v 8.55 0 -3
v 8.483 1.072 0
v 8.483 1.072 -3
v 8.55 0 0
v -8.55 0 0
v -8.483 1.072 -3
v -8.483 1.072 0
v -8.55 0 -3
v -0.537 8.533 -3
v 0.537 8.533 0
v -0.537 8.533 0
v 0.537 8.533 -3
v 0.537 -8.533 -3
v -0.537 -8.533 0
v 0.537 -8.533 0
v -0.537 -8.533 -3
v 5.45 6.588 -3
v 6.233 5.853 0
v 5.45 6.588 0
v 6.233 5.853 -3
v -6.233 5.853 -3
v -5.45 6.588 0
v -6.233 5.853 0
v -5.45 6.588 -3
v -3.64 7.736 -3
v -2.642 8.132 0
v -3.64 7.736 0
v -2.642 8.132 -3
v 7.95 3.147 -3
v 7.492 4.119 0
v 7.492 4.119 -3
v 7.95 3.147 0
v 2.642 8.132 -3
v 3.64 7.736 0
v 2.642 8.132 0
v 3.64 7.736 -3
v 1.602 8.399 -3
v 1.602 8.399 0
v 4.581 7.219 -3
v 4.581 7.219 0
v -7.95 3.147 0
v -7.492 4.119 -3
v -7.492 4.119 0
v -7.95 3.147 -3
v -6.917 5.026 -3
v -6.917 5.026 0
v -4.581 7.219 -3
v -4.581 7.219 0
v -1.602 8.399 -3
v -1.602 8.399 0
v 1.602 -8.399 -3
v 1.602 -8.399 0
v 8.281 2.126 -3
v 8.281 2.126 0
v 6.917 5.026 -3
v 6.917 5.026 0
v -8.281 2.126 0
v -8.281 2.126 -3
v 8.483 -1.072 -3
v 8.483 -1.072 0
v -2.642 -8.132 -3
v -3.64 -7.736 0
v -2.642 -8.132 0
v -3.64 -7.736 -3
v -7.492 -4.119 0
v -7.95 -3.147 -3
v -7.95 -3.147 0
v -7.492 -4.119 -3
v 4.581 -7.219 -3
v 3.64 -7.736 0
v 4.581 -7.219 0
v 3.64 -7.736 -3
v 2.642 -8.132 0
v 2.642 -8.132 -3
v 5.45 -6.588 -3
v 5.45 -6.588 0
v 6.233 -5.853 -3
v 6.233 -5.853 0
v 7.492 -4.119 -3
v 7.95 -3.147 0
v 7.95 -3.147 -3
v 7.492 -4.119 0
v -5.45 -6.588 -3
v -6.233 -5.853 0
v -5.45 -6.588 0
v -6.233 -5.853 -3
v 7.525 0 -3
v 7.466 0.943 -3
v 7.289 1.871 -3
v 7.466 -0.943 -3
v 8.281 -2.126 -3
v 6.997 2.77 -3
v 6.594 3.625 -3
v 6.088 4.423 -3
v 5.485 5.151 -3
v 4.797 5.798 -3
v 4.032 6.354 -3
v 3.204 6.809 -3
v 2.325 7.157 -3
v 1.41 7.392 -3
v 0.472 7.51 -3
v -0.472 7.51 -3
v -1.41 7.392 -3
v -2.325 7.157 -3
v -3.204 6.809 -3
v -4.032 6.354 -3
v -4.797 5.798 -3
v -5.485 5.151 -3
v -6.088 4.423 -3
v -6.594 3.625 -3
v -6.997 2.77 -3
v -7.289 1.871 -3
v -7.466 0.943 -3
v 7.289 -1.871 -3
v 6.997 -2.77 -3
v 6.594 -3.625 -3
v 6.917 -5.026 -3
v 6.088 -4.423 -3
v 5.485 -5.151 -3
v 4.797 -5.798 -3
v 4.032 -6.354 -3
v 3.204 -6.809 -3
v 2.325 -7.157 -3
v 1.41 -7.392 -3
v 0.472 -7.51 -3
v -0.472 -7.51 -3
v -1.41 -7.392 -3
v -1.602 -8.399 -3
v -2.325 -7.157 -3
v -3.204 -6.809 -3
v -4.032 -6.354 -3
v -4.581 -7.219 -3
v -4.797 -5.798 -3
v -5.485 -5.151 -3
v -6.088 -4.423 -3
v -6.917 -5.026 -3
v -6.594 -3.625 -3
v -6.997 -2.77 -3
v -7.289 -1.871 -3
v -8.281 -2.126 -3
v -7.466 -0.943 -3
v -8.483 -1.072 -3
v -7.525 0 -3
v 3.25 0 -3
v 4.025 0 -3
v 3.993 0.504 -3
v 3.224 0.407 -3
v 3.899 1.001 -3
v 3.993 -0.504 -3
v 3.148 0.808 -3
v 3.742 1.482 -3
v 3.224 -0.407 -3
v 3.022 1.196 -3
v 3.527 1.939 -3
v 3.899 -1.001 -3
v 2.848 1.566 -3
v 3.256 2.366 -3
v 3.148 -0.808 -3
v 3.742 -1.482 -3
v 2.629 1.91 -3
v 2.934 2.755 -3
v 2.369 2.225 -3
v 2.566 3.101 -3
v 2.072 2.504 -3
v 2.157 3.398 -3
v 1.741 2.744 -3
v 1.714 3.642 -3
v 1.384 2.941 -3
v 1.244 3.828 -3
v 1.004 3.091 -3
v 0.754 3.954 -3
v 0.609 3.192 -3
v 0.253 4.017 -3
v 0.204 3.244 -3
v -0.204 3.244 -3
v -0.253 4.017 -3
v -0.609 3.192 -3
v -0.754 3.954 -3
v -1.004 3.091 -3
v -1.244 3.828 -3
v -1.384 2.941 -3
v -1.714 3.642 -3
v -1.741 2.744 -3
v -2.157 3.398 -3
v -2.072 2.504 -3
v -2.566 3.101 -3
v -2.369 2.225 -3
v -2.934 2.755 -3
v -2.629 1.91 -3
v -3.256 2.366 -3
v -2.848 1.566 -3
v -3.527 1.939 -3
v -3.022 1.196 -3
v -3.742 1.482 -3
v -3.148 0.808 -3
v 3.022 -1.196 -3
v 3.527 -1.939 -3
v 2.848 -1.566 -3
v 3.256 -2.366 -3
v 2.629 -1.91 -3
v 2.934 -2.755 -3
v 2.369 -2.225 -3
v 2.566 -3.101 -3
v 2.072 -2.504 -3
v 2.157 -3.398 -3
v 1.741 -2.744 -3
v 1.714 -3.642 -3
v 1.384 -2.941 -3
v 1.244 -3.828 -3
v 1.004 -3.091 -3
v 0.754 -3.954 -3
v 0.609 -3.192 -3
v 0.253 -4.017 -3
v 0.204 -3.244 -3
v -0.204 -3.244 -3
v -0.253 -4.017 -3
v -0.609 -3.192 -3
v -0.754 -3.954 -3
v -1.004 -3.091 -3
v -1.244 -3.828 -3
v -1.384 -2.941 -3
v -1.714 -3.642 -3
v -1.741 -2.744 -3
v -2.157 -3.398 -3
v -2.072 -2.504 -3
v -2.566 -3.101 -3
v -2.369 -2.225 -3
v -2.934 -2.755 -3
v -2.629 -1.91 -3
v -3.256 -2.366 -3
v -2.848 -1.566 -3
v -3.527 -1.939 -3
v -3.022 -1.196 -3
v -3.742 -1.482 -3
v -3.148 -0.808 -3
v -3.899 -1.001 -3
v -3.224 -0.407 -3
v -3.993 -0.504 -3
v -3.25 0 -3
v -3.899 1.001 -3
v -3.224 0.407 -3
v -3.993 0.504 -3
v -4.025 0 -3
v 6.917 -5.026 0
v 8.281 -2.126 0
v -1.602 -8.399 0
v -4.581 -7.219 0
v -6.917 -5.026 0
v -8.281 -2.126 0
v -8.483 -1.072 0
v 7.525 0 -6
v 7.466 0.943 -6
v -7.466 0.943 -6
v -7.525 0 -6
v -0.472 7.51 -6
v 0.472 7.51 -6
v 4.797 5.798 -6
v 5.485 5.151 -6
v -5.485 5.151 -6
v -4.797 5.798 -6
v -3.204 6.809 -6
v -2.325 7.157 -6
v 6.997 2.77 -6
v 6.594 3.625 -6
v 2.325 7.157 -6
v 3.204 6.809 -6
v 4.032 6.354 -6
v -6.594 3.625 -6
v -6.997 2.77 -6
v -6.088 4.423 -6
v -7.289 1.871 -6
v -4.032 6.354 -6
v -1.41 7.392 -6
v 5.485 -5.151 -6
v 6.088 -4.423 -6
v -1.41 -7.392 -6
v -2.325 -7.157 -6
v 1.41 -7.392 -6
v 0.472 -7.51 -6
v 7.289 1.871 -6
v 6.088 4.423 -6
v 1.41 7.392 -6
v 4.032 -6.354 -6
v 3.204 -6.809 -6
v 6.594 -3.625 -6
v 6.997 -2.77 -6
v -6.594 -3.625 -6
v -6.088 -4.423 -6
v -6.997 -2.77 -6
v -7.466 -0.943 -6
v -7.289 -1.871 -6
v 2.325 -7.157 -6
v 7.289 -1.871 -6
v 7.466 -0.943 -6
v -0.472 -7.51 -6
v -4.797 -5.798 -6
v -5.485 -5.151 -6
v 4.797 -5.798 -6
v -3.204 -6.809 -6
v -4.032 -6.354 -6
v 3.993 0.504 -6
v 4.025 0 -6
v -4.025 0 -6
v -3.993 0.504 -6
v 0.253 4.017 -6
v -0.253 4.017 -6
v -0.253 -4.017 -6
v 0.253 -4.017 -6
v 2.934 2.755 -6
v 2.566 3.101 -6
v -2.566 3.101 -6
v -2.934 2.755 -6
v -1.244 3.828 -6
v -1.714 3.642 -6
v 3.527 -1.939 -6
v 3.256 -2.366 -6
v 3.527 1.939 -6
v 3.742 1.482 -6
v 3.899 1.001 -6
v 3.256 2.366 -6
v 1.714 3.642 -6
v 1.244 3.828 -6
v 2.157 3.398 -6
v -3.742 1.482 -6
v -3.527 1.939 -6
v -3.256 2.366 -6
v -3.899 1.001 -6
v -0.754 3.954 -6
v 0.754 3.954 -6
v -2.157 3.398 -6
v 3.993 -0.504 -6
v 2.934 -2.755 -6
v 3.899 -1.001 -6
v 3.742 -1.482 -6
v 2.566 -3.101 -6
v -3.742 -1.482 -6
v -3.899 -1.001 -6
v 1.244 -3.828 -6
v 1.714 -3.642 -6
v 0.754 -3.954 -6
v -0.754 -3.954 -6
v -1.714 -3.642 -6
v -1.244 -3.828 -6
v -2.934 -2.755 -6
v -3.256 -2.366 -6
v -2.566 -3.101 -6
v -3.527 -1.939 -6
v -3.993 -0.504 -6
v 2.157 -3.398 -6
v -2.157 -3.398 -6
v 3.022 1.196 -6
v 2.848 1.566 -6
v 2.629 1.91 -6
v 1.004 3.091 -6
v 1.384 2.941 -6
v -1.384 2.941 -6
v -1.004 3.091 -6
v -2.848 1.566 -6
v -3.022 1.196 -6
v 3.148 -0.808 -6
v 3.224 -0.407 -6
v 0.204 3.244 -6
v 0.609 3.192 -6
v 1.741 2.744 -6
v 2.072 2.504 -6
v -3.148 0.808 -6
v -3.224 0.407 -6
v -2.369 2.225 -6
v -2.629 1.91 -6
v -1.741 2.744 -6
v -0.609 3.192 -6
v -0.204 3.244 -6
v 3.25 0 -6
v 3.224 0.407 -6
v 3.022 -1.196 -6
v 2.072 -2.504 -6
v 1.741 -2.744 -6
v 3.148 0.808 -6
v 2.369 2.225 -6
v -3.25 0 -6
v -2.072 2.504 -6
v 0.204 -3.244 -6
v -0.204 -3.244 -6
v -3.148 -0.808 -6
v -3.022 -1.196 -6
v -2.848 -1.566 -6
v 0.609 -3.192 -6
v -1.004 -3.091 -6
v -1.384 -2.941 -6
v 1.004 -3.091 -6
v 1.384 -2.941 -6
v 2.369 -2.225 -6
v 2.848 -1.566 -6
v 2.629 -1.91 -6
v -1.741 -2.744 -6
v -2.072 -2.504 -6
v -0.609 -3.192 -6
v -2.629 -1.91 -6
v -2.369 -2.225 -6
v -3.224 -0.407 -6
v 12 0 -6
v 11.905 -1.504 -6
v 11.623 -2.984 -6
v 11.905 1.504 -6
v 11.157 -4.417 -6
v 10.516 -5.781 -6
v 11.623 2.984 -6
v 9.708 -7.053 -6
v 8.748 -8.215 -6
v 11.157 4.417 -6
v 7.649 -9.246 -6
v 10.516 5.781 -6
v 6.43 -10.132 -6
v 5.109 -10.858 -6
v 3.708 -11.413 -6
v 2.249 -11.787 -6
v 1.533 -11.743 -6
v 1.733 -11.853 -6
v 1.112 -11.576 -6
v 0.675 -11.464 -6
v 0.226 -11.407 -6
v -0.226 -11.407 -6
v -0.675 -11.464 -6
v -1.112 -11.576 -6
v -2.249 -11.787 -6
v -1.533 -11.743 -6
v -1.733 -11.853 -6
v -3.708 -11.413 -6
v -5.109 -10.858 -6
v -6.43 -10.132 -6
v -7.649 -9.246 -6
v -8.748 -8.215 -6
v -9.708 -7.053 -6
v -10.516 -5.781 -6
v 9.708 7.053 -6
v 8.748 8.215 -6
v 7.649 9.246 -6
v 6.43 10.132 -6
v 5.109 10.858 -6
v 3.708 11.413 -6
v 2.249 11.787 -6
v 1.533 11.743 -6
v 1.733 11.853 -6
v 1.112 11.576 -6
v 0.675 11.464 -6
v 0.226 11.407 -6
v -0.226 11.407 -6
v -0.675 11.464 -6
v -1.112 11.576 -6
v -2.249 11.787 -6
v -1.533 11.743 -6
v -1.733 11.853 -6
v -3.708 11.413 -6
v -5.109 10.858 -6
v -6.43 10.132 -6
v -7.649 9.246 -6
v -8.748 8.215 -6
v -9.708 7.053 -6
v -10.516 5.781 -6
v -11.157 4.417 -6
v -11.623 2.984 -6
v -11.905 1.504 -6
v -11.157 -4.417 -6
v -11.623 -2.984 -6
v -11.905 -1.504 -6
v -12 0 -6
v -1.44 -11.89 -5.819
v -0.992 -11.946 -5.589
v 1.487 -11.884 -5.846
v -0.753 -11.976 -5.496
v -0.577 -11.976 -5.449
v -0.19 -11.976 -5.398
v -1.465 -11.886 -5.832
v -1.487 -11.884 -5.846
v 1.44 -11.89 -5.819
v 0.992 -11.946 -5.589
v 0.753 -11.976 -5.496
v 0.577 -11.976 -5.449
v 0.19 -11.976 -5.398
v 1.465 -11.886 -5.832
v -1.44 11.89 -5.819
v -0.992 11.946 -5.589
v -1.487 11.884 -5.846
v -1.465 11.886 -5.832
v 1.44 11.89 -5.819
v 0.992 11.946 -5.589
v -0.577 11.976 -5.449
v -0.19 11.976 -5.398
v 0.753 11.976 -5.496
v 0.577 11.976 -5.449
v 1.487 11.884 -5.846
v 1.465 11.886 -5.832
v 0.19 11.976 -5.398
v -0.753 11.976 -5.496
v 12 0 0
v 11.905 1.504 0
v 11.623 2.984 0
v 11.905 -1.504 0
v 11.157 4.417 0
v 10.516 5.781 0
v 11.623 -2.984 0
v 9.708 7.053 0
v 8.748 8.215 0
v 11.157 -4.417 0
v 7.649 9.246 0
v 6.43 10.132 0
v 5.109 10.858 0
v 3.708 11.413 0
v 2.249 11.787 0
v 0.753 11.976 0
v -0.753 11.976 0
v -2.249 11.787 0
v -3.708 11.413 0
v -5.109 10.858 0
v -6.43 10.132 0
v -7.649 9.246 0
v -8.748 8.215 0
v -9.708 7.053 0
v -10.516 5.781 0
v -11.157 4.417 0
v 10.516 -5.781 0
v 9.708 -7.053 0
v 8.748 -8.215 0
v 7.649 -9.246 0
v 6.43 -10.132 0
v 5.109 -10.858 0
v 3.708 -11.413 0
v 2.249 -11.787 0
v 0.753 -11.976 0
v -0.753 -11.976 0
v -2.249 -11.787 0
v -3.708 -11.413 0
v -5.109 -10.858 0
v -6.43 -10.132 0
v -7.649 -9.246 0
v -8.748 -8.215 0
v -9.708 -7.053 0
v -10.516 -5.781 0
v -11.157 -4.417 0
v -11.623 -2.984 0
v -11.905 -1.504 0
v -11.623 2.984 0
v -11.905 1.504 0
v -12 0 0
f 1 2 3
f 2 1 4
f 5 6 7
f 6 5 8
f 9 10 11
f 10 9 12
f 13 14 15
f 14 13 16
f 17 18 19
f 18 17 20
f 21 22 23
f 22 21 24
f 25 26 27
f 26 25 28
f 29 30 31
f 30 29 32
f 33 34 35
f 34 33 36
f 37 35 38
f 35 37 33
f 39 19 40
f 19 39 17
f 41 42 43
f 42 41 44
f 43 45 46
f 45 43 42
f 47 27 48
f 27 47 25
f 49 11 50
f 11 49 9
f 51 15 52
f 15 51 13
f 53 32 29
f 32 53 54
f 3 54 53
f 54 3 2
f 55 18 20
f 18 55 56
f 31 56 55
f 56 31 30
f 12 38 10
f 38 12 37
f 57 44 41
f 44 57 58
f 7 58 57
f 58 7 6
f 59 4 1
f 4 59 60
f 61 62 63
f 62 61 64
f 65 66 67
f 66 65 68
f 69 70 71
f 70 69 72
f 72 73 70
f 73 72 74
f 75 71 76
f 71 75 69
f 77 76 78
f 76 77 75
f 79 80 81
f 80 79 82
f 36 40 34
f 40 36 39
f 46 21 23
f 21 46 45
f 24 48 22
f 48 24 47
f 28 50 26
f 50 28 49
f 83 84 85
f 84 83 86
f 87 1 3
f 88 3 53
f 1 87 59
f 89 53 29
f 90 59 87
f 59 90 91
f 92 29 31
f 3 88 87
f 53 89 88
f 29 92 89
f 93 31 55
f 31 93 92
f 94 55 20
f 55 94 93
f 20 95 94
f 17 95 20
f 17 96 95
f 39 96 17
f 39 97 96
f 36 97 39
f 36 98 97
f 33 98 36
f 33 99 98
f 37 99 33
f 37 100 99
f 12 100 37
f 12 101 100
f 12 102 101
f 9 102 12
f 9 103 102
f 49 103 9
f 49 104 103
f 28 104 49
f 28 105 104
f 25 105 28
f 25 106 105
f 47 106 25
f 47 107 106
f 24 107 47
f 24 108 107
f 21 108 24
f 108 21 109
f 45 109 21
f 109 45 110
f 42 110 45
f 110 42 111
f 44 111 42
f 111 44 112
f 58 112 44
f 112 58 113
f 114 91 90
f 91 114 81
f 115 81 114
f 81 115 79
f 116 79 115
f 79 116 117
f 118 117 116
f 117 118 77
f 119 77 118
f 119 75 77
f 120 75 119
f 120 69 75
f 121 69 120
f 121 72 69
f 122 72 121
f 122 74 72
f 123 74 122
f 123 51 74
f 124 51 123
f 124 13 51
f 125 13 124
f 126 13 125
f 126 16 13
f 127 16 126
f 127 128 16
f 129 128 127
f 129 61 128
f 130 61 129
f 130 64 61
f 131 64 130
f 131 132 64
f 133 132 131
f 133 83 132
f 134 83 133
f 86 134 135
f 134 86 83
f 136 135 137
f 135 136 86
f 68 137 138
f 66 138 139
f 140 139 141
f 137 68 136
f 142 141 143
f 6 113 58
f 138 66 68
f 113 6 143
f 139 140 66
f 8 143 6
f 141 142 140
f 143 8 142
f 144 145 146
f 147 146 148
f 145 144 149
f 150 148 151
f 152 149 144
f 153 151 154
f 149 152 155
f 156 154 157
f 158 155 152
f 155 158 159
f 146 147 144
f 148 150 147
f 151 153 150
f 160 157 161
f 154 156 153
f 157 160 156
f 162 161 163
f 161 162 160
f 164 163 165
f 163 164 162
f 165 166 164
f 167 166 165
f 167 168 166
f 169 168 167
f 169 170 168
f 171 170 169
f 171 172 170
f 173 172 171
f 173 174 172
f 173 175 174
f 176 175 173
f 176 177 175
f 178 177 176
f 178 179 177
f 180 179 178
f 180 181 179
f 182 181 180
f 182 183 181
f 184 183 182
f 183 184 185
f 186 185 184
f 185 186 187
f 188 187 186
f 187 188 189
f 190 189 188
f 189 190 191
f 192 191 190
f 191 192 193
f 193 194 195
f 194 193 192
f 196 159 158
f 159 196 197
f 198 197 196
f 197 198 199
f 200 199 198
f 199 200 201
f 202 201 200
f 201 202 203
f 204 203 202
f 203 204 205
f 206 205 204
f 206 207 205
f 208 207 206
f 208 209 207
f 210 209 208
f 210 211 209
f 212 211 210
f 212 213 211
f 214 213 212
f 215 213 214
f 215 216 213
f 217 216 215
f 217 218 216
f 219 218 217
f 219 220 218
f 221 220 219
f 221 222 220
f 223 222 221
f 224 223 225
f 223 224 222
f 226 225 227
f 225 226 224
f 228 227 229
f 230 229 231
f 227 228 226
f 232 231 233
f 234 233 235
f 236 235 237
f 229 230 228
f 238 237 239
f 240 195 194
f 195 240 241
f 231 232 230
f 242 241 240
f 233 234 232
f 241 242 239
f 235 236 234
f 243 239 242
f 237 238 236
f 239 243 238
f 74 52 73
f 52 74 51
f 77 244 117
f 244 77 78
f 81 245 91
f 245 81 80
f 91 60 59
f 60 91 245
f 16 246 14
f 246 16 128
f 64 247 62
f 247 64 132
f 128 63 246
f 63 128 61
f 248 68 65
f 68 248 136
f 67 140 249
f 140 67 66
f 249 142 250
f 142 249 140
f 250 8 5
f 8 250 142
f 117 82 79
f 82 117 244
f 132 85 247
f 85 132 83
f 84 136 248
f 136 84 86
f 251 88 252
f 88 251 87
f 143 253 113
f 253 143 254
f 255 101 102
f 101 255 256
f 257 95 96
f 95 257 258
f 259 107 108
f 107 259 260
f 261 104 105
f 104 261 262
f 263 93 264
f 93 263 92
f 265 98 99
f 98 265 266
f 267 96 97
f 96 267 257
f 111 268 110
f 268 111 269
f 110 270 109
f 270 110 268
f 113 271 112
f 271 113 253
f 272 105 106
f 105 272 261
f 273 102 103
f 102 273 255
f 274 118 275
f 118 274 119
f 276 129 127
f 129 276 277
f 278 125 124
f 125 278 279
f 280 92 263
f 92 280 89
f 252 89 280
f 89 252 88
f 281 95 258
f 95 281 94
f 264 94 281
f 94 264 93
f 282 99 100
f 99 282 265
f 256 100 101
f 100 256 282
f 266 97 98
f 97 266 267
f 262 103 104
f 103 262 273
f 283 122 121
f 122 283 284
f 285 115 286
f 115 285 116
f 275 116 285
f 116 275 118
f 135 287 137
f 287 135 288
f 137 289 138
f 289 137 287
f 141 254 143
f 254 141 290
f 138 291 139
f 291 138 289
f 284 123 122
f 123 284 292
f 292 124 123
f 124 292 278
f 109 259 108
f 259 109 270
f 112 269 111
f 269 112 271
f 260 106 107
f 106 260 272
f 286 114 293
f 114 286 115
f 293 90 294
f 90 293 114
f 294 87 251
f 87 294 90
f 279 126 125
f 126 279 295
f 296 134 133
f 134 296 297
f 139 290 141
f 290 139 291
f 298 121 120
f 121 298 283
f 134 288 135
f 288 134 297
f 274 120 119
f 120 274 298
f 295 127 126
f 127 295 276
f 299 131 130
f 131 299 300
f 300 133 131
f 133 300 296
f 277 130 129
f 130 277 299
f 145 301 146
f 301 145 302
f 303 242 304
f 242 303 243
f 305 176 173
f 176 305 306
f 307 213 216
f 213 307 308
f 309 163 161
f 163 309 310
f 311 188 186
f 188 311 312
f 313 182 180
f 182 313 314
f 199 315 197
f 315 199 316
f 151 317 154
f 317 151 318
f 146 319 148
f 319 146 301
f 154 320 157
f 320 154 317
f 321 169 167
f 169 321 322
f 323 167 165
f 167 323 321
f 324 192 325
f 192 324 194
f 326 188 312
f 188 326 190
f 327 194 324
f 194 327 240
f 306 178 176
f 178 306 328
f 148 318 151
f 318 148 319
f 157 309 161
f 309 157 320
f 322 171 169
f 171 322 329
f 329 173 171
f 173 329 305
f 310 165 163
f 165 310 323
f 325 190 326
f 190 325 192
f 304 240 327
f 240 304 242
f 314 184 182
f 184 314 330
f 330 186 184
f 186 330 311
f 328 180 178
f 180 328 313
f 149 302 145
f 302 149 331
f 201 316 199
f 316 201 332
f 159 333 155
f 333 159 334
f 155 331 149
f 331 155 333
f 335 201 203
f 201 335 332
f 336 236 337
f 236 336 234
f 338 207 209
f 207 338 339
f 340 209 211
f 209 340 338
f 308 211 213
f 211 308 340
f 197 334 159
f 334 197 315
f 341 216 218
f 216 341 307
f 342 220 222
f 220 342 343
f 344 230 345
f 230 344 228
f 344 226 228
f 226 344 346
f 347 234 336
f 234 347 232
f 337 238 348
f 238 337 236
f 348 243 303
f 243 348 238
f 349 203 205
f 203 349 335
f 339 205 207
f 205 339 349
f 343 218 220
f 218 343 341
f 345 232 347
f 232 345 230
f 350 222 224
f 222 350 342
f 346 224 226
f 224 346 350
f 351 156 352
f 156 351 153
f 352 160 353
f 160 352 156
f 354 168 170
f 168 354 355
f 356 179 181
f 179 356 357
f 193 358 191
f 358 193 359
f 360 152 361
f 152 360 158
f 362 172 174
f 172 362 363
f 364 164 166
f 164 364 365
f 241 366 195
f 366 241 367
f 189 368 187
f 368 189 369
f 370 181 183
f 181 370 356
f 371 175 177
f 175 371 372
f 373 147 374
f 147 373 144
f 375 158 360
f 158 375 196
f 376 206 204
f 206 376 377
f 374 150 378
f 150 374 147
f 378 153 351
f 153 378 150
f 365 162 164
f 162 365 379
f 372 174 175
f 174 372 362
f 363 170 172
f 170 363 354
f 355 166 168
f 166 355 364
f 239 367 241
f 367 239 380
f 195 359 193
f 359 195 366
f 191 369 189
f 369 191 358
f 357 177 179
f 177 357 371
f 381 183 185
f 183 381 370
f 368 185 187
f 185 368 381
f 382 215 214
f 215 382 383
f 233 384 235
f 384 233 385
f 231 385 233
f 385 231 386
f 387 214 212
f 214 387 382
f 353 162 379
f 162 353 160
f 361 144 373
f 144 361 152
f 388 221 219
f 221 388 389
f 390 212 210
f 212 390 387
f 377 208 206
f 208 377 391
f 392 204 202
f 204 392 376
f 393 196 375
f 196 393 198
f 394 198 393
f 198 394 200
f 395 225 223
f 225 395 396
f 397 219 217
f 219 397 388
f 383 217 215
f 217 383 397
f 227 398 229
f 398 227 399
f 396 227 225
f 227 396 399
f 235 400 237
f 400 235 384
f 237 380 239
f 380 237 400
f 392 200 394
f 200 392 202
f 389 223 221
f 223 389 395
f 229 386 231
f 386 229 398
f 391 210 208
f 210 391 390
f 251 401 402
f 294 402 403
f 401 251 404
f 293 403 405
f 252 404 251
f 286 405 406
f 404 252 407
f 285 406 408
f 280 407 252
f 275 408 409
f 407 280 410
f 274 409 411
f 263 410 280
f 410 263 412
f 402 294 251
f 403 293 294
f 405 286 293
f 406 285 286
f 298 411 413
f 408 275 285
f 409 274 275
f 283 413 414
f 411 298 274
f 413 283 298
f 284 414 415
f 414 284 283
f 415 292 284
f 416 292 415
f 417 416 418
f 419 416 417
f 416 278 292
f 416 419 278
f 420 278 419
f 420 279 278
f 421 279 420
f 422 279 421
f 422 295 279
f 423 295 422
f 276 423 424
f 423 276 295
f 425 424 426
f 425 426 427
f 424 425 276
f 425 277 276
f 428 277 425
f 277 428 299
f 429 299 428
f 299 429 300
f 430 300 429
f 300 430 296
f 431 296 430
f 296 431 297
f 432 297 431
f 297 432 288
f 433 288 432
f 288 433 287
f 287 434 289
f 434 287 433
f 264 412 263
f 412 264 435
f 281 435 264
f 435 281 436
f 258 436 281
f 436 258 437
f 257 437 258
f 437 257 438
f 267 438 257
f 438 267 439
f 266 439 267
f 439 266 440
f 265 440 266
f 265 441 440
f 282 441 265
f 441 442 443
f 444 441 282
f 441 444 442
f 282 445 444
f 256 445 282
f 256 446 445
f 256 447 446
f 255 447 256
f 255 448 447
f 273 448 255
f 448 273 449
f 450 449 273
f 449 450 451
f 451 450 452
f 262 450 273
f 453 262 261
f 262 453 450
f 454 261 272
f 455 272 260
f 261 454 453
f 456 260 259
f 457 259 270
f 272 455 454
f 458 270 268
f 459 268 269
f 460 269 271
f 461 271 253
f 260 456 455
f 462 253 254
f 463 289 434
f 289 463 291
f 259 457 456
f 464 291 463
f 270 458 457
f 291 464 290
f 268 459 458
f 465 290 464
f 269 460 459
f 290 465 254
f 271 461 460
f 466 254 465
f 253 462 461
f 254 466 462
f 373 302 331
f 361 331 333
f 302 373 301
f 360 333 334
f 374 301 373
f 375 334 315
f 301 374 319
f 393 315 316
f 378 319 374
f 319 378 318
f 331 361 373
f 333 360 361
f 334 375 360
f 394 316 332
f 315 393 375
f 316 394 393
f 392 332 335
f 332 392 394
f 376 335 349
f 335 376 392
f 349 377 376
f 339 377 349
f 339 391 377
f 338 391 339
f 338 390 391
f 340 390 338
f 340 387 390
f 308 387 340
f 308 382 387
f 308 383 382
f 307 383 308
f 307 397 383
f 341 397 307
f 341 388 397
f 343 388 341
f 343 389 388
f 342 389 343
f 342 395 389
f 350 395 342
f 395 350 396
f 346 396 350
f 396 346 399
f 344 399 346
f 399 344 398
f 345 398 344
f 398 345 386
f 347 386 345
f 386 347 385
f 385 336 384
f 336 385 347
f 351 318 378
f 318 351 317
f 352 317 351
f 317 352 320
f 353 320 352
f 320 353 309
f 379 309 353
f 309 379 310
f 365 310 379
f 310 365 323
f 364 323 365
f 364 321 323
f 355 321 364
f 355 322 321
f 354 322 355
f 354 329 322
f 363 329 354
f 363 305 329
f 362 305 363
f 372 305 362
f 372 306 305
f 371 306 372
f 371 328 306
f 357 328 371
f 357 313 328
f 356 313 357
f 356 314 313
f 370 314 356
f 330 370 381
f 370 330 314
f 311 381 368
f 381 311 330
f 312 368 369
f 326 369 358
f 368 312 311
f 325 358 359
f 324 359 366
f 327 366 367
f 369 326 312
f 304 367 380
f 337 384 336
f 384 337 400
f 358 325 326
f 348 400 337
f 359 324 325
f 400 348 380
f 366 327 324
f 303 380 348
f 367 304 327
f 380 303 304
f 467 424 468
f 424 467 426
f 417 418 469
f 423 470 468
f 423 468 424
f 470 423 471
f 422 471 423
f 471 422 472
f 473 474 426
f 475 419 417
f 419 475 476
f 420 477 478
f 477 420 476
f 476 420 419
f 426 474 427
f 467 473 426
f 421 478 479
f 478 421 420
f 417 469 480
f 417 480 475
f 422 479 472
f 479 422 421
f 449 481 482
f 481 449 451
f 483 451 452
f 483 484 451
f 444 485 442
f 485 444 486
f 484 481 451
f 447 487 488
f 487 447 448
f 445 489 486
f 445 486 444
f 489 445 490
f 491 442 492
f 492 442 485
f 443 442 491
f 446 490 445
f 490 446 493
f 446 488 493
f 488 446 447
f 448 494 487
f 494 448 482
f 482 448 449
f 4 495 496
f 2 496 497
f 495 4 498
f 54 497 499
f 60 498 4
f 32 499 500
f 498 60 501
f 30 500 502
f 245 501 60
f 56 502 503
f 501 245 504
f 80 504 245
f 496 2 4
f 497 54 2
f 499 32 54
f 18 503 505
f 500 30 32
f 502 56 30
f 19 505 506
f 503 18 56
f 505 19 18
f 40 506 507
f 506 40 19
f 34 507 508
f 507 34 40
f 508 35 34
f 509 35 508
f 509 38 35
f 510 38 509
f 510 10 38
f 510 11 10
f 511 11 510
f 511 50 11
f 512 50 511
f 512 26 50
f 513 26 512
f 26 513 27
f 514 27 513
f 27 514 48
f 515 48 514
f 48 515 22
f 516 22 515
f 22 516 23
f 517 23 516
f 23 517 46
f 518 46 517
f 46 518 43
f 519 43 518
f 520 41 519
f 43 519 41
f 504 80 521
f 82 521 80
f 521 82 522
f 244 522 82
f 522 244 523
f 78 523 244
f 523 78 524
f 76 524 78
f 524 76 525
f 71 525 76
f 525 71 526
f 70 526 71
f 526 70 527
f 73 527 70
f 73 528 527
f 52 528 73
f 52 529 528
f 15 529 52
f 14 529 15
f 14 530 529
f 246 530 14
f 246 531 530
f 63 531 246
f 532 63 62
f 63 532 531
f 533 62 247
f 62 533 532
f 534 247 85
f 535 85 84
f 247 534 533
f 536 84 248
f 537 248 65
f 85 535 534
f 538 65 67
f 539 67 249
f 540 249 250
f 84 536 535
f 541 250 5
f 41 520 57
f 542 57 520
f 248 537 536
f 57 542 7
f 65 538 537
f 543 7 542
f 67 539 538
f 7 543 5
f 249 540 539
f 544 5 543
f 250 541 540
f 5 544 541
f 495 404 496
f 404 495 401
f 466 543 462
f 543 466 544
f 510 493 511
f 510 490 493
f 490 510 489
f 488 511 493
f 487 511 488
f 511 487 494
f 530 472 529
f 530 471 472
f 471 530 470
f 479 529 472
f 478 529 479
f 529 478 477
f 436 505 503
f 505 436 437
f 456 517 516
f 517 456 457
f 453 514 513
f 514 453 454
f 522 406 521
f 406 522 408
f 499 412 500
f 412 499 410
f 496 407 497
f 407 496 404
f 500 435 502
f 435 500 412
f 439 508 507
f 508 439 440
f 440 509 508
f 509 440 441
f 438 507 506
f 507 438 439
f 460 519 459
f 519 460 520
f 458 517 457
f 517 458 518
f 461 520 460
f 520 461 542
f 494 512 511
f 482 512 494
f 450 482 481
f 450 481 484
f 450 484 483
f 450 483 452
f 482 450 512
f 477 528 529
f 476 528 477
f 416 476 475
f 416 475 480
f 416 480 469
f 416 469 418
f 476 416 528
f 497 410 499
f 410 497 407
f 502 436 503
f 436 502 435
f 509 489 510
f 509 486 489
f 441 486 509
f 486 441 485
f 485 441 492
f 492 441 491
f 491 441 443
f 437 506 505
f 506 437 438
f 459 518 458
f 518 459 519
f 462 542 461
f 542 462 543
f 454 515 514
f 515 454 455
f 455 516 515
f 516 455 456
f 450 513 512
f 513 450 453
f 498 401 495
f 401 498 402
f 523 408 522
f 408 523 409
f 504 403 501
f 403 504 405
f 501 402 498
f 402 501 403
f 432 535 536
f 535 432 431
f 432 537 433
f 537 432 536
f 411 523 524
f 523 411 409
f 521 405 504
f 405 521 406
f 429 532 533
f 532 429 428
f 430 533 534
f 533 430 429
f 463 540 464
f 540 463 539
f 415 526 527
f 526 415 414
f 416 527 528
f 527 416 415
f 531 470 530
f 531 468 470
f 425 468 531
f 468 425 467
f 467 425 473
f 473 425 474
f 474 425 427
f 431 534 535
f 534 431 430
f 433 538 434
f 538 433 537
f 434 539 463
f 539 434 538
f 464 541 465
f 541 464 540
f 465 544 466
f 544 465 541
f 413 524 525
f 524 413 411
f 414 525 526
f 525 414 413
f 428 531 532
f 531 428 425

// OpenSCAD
$fn = 50;


difference() {
	union() {
		translate(v = [0, 0, -6.0000000000]) {
			rotate(a = [0, 0, 0]) {
				cylinder(h = 12, r = 12.0000000000);
			}
		}
	}
	union() {
		translate(v = [0, 0, 0]) {
			rotate(a = [0, 0, 0]) {
				translate(v = [0, 0, -3.0000000000]) {
					union() {
						difference() {
							translate(v = [0, 0, 0]) {
								rotate(a = [0, 0, 0]) {
									cylinder(h = 6, r = 8.5500000000);
								}
							}
							translate(v = [0, 0, 0]) {
								rotate(a = [0, 0, 0]) {
									cylinder(h = 6, r = 3.0000000000);
								}
							}
						}
						difference() {
							translate(v = [0, 0, -50]) {
								rotate(a = [0, 0, 0]) {
									cylinder(h = 100, r = 7.5250000000);
								}
							}
							translate(v = [0, 0, -50]) {
								rotate(a = [0, 0, 0]) {
									cylinder(h = 100, r = 4.0250000000);
								}
							}
						}
					}
				}
			}
		}
		translate(v = [-15.0000000000, -15.0000000000, -125.0000000000]) {
			rotate(a = [0, 0, 0]) {
				cylinder(h = 250, r = 3.2500000000);
			}
		}
		translate(v = [-15.0000000000, 15.0000000000, -125.0000000000]) {
			rotate(a = [0, 0, 0]) {
				cylinder(h = 250, r = 3.2500000000);
			}
		}
		translate(v = [15.0000000000, -15.0000000000, -125.0000000000]) {
			rotate(a = [0, 0, 0]) {
				cylinder(h = 250, r = 3.2500000000);
			}
		}
		translate(v = [15.0000000000, 15.0000000000, -125.0000000000]) {
			rotate(a = [0, 0, 0]) {
				cylinder(h = 250, r = 3.2500000000);
			}
		}
		translate(v = [0, 0, -125.0000000000]) {
			rotate(a = [0, 0, 0]) {
				cylinder(h = 250, r = 3.2500000000);
			}
		}
		translate(v = [15.0000000000, 0.0000000000, 4.1000000000]) {
			rotate(a = [0, 0, 15.0000000000]) {
				cylinder(h = 1.9000000000, r1 = 1.8000000000, r2 = 3.6000000000);
			}
		}
		translate(v = [15.0000000000, 0.0000000000, -6.0000000000]) {
			rotate(a = [0, 0, 15.0000000000]) {
				cylinder(h = 12, r = 1.8000000000);
			}
		}
		translate(v = [15.0000000000, 0.0000000000, -6.0000000000]) {
			rotate(a = [0, 0, 15.0000000000]) {
				translate(v = [0, 0, 0]) {
					rotate(a = [0, 0, 15.0000000000]) {
						linear_extrude(height = 3) {
							polygon(points = [[3.4620000000, 0.0000000000], [1.7310000000, 2.9981799479], [-1.7310000000, 2.9981799479], [-3.4620000000, 0.0000000000], [-1.7310000000, -2.9981799479], [1.7310000000, -2.9981799479]]);
						}
					}
				}
			}
		}
		translate(v = [13.2500000000, -3.2500000000, -3.0000000000]) {
			rotate(a = [0, 0, 0]) {
				cube(size = [3.5000000000, 6.5000000000, 0.3000000000]);
			}
		}
		translate(v = [13.2500000000, -1.7500000000, -2.7000000000]) {
			rotate(a = [0, 0, 0]) {
				cube(size = [3.5000000000, 3.5000000000, 0.3000000000]);
			}
		}
		translate(v = [13.2500000000, -3.2500000000, -6.3000000000]) {
			rotate(a = [0, 0, 0]) {
				cube(size = [3.5000000000, 6.5000000000, 0.3000000000]);
			}
		}
		translate(v = [13.2500000000, -1.7500000000, -6.6000000000]) {
			rotate(a = [0, 0, 0]) {
				cube(size = [3.5000000000, 3.5000000000, 0.3000000000]);
			}
		}
		translate(v = [0.0000000000, -15.0000000000, -4.1000000000]) {
			rotate(a = [0, 180, 0]) {
				cylinder(h = 1.9000000000, r1 = 1.8000000000, r2 = 3.6000000000);
			}
		}
		translate(v = [0.0000000000, -15.0000000000, 6.0000000000]) {
			rotate(a = [0, 180, 0]) {
				cylinder(h = 12, r = 1.8000000000);
			}
		}
		translate(v = [0.0000000000, -15.0000000000, 3.0000000000]) {
			rotate(a = [0, 180, 0]) {
				translate(v = [0, 0, 0]) {
					rotate(a = [0, 180, 0]) {
						linear_extrude(height = 3) {
							polygon(points = [[3.4620000000, 0.0000000000], [1.7310000000, 2.9981799479], [-1.7310000000, 2.9981799479], [-3.4620000000, 0.0000000000], [-1.7310000000, -2.9981799479], [1.7310000000, -2.9981799479]]);
						}
					}
				}
			}
		}
		translate(v = [-1.7500000000, -18.2500000000, 6.0000000000]) {
			rotate(a = [0, 0, 0]) {
				cube(size = [3.5000000000, 6.5000000000, 0.3000000000]);
			}
		}
		translate(v = [-1.7500000000, -16.7500000000, 6.3000000000]) {
			rotate(a = [0, 0, 0]) {
				cube(size = [3.5000000000, 3.5000000000, 0.3000000000]);
			}
		}
		translate(v = [-1.7500000000, -18.2500000000, 2.7000000000]) {
			rotate(a = [0, 0, 0]) {
				cube(size = [3.5000000000, 6.5000000000, 0.3000000000]);
			}
		}
		translate(v = [-1.7500000000, -16.7500000000, 2.4000000000]) {
			rotate(a = [0, 0, 0]) {
				cube(size = [3.5000000000, 3.5000000000, 0.3000000000]);
			}
		}
		translate(v = [-15.0000000000, 0.0000000000, 4.1000000000]) {
			rotate(a = [0, 0, 15.0000000000]) {
				cylinder(h = 1.9000000000, r1 = 1.8000000000, r2 = 3.6000000000);
			}
		}
		translate(v = [-15.0000000000, 0.0000000000, -6.0000000000]) {
			rotate(a = [0, 0, 15.0000000000]) {
				cylinder(h = 12, r = 1.8000000000);
			}
		}
		translate(v = [-15.0000000000, 0.0000000000, -6.0000000000]) {
			rotate(a = [0, 0, 15.0000000000]) {
				translate(v = [0, 0, 0]) {
					rotate(a = [0, 0, 15.0000000000]) {
						linear_extrude(height = 3) {
							polygon(points = [[3.4620000000, 0.0000000000], [1.7310000000, 2.9981799479], [-1.7310000000, 2.9981799479], [-3.4620000000, 0.0000000000], [-1.7310000000, -2.9981799479], [1.7310000000, -2.9981799479]]);
						}
					}
				}
			}
		}
		translate(v = [-16.7500000000, -3.2500000000, -3.0000000000]) {
			rotate(a = [0, 0, 0]) {
				cube(size = [3.5000000000, 6.5000000000, 0.3000000000]);
			}
		}
		translate(v = [-16.7500000000, -1.7500000000, -2.7000000000]) {
			rotate(a = [0, 0, 0]) {
				cube(size = [3.5000000000, 3.5000000000, 0.3000000000]);
			}
		}
		translate(v = [-16.7500000000, -3.2500000000, -6.3000000000]) {
			rotate(a = [0, 0, 0]) {
				cube(size = [3.5000000000, 6.5000000000, 0.3000000000]);
			}
		}
		translate(v = [-16.7500000000, -1.7500000000, -6.6000000000]) {
			rotate(a = [0, 0, 0]) {
				cube(size = [3.5000000000, 3.5000000000, 0.3000000000]);
			}
		}
		translate(v = [0.0000000000, 15.0000000000, -4.1000000000]) {
			rotate(a = [0, 180, 0]) {
				cylinder(h = 1.9000000000, r1 = 1.8000000000, r2 = 3.6000000000);
			}
		}
		translate(v = [0.0000000000, 15.0000000000, 6.0000000000]) {
			rotate(a = [0, 180, 0]) {
				cylinder(h = 12, r = 1.8000000000);
			}
		}
		translate(v = [0.0000000000, 15.0000000000, 3.0000000000]) {
			rotate(a = [0, 180, 0]) {
				translate(v = [0, 0, 0]) {
					rotate(a = [0, 180, 0]) {
						linear_extrude(height = 3) {
							polygon(points = [[3.4620000000, 0.0000000000], [1.7310000000, 2.9981799479], [-1.7310000000, 2.9981799479], [-3.4620000000, 0.0000000000], [-1.7310000000, -2.9981799479], [1.7310000000, -2.9981799479]]);
						}
					}
				}
			}
		}
		translate(v = [-1.7500000000, 11.7500000000, 6.0000000000]) {
			rotate(a = [0, 0, 0]) {
				cube(size = [3.5000000000, 6.5000000000, 0.3000000000]);
			}
		}
		translate(v = [-1.7500000000, 13.2500000000, 6.3000000000]) {
			rotate(a = [0, 0, 0]) {
				cube(size = [3.5000000000, 3.5000000000, 0.3000000000]);
			}
		}
		translate(v = [-1.7500000000, 11.7500000000, 2.7000000000]) {
			rotate(a = [0, 0, 0]) {
				cube(size = [3.5000000000, 6.5000000000, 0.3000000000]);
			}
		}
		translate(v = [-1.7500000000, 13.2500000000, 2.4000000000]) {
			rotate(a = [0, 0, 0]) {
				cube(size = [3.5000000000, 3.5000000000, 0.3000000000]);
			}
		}
		translate(v = [-250.0000000000, -250.0000000000, 0]) {
			rotate(a = [0, 0, 0]) {
				cube(size = [500, 500, 500]);
			}
		}
	}
}
